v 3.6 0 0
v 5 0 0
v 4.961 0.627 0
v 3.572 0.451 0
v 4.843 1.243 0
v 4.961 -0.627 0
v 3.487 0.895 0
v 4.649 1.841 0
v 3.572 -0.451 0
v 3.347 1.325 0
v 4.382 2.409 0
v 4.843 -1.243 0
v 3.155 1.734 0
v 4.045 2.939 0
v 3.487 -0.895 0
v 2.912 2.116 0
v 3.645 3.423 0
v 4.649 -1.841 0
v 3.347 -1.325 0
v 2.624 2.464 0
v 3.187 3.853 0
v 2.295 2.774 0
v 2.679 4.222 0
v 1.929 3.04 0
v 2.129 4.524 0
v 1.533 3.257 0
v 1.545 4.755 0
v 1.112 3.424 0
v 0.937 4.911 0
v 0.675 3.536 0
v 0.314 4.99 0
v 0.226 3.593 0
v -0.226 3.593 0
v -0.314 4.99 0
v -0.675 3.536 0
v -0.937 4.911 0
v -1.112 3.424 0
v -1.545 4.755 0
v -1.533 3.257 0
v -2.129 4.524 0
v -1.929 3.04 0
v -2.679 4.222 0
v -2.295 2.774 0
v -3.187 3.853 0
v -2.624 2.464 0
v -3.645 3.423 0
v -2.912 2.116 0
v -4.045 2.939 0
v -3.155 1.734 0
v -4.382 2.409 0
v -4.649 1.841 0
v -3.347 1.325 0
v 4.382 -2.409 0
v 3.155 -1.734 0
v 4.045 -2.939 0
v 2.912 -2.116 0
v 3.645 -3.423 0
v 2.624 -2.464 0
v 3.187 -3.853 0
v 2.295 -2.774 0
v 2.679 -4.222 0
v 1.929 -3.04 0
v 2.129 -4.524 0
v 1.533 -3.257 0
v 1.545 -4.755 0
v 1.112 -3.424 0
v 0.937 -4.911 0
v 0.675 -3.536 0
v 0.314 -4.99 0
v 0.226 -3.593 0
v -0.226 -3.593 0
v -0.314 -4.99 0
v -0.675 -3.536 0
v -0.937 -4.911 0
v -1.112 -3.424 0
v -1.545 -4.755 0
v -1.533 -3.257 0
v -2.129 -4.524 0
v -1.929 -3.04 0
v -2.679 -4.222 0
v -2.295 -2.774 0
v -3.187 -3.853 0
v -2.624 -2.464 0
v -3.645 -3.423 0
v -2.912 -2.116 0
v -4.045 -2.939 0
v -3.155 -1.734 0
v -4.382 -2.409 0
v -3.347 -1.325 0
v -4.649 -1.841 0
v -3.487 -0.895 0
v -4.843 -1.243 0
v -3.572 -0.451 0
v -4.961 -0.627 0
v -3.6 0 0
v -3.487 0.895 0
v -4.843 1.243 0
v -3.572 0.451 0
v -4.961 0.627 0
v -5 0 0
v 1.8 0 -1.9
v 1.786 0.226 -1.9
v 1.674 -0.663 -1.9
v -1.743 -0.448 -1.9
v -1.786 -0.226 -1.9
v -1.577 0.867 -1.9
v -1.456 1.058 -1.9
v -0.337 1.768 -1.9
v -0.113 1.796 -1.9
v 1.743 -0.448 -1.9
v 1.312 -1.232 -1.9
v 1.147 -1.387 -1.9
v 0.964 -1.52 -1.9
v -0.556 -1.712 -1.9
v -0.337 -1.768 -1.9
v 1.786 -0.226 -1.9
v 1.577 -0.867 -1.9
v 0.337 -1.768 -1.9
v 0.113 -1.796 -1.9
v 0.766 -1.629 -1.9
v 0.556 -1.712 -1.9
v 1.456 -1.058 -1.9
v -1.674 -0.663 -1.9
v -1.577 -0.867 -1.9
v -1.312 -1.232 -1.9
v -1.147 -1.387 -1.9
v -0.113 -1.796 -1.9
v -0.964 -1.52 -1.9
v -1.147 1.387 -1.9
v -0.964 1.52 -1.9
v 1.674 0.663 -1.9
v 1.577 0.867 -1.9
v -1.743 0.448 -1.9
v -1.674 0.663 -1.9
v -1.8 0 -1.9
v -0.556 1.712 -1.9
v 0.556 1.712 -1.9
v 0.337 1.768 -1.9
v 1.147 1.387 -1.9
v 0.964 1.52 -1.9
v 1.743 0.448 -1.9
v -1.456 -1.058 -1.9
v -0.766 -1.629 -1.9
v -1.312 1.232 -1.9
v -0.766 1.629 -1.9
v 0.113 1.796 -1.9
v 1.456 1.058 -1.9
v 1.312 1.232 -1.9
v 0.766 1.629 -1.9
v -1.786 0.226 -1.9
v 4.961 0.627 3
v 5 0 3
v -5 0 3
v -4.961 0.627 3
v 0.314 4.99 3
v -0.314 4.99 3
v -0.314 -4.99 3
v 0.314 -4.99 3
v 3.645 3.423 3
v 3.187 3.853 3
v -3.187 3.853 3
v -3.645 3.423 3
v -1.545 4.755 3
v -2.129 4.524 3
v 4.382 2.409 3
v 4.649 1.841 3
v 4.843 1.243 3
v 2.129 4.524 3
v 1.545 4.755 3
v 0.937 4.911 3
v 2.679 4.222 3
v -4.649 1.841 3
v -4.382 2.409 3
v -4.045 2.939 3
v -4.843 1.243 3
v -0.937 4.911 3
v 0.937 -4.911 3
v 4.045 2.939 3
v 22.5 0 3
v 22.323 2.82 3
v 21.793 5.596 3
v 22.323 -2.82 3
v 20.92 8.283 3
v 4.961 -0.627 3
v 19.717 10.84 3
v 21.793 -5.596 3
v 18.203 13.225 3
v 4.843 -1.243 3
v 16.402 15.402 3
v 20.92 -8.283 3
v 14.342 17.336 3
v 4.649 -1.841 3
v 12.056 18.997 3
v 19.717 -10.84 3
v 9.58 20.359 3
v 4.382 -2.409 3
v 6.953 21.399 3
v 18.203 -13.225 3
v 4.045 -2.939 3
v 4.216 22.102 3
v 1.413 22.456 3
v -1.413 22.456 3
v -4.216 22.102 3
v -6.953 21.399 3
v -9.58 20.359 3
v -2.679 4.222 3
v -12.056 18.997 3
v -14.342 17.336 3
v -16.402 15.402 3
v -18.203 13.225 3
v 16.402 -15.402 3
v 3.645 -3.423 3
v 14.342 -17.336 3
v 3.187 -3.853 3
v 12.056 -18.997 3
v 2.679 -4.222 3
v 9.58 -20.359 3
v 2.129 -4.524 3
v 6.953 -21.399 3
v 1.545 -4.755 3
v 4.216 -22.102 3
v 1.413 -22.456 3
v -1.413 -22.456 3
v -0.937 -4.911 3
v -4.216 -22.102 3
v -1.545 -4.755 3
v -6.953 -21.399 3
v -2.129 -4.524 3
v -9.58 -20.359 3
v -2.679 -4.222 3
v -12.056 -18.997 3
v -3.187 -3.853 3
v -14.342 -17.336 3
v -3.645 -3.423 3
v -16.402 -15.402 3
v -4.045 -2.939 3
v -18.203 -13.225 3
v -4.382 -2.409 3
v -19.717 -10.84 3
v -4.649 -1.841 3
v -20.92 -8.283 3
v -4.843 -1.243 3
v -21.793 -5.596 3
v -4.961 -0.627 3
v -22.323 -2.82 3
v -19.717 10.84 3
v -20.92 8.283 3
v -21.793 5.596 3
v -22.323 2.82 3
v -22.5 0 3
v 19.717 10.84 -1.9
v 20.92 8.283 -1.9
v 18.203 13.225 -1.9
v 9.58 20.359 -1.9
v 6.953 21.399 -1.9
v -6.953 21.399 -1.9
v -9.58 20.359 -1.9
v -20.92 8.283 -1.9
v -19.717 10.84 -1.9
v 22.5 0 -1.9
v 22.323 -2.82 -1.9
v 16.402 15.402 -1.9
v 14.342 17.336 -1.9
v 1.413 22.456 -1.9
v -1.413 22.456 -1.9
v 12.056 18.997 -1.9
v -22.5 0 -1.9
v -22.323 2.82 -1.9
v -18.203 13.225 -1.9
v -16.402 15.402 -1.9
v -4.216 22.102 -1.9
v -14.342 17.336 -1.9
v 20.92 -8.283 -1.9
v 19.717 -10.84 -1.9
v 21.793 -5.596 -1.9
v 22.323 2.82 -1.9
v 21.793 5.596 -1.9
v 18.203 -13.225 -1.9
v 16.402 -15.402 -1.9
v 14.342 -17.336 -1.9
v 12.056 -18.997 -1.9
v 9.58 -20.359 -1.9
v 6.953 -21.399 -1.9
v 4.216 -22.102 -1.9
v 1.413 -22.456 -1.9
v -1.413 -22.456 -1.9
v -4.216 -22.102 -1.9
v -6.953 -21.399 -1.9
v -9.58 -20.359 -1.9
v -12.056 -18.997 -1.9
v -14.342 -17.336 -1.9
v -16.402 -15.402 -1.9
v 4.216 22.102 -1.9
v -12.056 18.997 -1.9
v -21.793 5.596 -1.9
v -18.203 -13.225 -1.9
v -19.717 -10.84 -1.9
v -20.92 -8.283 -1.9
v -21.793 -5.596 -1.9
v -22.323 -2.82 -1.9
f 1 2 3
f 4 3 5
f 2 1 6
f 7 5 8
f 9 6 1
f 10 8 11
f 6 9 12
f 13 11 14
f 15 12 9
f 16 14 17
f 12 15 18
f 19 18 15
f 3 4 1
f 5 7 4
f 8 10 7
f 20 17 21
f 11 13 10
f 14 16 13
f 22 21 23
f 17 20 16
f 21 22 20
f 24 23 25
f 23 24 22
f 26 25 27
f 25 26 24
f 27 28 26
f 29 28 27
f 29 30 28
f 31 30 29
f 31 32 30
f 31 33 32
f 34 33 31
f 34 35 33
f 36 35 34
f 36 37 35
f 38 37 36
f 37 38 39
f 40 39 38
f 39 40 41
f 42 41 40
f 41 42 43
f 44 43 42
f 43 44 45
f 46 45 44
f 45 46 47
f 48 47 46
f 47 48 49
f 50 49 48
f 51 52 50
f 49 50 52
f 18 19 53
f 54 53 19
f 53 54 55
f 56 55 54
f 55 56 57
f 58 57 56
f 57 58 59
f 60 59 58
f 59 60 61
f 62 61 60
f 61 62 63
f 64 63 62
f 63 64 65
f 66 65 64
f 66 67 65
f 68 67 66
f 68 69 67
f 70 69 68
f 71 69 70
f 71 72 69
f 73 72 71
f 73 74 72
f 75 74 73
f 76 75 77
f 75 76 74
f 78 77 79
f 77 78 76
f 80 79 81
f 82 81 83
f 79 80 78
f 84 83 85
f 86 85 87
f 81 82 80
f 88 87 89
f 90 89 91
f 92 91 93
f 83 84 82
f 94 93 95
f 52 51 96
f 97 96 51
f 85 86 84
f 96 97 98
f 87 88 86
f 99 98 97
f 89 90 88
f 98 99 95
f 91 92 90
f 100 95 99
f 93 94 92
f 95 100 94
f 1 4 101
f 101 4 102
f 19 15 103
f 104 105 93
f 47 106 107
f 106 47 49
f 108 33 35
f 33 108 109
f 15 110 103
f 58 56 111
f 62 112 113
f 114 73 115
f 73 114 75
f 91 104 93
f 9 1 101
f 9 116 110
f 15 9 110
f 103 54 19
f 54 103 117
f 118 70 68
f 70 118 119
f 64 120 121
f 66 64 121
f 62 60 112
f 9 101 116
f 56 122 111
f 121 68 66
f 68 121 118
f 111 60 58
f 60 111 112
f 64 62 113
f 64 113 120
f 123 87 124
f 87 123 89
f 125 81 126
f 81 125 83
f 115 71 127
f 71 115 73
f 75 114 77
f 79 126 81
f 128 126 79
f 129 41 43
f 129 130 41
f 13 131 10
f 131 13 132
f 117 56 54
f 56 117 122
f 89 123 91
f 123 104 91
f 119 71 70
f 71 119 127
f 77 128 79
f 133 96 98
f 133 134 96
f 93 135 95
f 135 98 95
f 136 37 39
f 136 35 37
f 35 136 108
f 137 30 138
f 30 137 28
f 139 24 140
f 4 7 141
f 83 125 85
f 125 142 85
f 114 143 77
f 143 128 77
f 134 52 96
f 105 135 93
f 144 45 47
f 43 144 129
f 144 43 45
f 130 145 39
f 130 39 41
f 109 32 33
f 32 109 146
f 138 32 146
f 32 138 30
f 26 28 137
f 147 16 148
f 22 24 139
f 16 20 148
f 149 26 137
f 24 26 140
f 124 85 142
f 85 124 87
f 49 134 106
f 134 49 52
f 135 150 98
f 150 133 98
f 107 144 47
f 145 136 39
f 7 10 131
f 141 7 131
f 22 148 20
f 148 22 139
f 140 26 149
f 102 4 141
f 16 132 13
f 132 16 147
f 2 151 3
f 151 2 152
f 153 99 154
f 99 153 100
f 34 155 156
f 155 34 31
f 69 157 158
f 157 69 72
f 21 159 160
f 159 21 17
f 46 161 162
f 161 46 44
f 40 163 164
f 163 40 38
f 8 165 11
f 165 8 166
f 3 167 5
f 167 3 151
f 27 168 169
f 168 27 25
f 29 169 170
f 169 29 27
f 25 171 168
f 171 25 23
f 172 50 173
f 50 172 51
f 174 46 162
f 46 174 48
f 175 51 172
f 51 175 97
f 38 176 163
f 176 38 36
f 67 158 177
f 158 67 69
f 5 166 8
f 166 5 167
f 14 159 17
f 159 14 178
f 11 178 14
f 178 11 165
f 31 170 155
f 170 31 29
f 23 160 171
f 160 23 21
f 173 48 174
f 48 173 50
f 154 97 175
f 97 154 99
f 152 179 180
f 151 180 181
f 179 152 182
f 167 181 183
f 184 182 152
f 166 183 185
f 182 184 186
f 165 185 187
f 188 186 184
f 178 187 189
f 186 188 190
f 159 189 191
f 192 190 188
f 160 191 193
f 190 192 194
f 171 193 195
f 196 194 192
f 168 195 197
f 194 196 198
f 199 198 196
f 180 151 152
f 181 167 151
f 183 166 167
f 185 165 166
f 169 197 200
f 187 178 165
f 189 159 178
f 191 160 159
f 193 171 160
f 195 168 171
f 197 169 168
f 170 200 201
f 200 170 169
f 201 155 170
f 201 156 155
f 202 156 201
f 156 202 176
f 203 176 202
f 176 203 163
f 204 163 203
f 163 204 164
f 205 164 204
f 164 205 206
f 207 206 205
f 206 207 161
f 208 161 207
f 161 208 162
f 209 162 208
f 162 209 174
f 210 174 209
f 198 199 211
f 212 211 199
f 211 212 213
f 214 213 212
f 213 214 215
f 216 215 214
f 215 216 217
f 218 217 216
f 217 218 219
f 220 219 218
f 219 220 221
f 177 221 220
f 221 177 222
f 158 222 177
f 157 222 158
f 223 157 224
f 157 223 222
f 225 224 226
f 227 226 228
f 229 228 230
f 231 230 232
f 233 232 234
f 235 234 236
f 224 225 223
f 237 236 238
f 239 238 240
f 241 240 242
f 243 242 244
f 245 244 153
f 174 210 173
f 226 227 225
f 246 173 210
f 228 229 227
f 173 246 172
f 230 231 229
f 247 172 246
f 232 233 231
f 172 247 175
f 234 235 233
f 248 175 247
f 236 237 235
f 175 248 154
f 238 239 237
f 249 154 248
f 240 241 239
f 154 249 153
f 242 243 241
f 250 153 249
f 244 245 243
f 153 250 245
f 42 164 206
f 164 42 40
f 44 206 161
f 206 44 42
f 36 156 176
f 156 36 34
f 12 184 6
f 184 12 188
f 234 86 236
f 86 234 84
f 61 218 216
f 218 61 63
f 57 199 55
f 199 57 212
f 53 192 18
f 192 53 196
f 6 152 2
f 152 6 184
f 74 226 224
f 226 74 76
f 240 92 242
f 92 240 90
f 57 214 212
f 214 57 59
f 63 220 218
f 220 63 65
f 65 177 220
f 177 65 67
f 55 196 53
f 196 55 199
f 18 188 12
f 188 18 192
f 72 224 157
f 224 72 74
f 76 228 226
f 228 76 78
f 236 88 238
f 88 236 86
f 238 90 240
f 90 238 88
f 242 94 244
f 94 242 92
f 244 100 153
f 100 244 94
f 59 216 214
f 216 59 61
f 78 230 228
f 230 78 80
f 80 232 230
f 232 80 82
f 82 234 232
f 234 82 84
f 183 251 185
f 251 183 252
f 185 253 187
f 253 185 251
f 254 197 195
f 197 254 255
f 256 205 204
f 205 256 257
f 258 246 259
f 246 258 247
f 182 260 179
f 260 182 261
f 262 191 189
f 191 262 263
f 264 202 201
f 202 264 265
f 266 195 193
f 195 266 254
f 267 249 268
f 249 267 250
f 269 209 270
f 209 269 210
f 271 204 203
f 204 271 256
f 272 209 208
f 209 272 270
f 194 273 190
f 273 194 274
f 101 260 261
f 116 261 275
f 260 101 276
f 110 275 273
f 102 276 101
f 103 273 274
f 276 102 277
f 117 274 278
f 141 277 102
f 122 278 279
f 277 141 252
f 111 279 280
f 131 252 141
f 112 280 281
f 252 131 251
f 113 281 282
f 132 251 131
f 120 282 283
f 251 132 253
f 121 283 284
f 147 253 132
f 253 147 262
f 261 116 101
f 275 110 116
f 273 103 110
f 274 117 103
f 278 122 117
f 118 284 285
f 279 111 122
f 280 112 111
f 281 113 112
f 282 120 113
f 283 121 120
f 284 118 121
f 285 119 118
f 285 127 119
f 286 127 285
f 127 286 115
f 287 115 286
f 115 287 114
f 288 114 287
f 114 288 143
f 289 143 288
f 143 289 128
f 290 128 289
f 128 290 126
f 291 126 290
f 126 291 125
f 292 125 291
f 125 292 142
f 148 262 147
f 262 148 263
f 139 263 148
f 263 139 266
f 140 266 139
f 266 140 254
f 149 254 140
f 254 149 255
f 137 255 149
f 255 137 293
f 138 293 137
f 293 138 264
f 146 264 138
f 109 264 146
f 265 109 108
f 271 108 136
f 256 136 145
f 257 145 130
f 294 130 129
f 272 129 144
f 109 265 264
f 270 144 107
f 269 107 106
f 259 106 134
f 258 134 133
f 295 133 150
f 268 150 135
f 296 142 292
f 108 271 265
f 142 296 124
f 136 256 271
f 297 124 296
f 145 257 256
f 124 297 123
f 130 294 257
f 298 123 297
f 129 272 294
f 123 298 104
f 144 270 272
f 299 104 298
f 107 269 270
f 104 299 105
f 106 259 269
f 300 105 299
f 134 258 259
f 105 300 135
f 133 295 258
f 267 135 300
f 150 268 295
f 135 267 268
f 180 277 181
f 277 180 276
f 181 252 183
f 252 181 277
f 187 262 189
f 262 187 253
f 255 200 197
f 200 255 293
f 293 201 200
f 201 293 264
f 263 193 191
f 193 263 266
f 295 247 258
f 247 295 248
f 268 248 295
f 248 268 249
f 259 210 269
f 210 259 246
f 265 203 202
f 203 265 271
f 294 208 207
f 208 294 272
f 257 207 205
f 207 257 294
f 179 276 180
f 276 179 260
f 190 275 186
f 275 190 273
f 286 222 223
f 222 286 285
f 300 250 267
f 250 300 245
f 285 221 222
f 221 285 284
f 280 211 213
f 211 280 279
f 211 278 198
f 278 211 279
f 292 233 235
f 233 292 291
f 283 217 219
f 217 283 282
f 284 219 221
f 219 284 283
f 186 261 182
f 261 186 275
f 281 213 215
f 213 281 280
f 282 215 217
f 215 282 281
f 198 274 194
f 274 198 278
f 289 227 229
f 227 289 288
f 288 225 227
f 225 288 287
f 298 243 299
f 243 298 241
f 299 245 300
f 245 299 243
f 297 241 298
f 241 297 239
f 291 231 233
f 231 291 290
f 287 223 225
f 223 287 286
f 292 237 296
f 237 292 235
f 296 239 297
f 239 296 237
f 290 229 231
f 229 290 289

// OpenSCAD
$fn = 50;

difference() {
	union() {
		translate(v = [0, 0, -1.9000000000000004]) {
			cylinder(h = 4.9, r = 22.5);
		}
	}
	union() {
		translate(v = [0, 0, 0]) {
			rotate(a = [0, 0, 0]) {
				difference() {
					union() {
						translate(v = [0, 0, -4.9]) {
							cylinder(h = 4.9, r = 1.5);
						}
						translate(v = [0, 0, -1.9]) {
							cylinder(h = 1.9, r1 = 1.8, r2 = 3.6);
						}
						translate(v = [0, 0, -4.9]) {
							cylinder(h = 4.9, r = 1.8);
						}
						translate(v = [0, 0, -4.9]) {
							cylinder(h = 4.9, r = 1.5);
						}
					}
					union();
				}
			}
		}
		#cylinder(h = 3, r = 5.0);
	}
}
